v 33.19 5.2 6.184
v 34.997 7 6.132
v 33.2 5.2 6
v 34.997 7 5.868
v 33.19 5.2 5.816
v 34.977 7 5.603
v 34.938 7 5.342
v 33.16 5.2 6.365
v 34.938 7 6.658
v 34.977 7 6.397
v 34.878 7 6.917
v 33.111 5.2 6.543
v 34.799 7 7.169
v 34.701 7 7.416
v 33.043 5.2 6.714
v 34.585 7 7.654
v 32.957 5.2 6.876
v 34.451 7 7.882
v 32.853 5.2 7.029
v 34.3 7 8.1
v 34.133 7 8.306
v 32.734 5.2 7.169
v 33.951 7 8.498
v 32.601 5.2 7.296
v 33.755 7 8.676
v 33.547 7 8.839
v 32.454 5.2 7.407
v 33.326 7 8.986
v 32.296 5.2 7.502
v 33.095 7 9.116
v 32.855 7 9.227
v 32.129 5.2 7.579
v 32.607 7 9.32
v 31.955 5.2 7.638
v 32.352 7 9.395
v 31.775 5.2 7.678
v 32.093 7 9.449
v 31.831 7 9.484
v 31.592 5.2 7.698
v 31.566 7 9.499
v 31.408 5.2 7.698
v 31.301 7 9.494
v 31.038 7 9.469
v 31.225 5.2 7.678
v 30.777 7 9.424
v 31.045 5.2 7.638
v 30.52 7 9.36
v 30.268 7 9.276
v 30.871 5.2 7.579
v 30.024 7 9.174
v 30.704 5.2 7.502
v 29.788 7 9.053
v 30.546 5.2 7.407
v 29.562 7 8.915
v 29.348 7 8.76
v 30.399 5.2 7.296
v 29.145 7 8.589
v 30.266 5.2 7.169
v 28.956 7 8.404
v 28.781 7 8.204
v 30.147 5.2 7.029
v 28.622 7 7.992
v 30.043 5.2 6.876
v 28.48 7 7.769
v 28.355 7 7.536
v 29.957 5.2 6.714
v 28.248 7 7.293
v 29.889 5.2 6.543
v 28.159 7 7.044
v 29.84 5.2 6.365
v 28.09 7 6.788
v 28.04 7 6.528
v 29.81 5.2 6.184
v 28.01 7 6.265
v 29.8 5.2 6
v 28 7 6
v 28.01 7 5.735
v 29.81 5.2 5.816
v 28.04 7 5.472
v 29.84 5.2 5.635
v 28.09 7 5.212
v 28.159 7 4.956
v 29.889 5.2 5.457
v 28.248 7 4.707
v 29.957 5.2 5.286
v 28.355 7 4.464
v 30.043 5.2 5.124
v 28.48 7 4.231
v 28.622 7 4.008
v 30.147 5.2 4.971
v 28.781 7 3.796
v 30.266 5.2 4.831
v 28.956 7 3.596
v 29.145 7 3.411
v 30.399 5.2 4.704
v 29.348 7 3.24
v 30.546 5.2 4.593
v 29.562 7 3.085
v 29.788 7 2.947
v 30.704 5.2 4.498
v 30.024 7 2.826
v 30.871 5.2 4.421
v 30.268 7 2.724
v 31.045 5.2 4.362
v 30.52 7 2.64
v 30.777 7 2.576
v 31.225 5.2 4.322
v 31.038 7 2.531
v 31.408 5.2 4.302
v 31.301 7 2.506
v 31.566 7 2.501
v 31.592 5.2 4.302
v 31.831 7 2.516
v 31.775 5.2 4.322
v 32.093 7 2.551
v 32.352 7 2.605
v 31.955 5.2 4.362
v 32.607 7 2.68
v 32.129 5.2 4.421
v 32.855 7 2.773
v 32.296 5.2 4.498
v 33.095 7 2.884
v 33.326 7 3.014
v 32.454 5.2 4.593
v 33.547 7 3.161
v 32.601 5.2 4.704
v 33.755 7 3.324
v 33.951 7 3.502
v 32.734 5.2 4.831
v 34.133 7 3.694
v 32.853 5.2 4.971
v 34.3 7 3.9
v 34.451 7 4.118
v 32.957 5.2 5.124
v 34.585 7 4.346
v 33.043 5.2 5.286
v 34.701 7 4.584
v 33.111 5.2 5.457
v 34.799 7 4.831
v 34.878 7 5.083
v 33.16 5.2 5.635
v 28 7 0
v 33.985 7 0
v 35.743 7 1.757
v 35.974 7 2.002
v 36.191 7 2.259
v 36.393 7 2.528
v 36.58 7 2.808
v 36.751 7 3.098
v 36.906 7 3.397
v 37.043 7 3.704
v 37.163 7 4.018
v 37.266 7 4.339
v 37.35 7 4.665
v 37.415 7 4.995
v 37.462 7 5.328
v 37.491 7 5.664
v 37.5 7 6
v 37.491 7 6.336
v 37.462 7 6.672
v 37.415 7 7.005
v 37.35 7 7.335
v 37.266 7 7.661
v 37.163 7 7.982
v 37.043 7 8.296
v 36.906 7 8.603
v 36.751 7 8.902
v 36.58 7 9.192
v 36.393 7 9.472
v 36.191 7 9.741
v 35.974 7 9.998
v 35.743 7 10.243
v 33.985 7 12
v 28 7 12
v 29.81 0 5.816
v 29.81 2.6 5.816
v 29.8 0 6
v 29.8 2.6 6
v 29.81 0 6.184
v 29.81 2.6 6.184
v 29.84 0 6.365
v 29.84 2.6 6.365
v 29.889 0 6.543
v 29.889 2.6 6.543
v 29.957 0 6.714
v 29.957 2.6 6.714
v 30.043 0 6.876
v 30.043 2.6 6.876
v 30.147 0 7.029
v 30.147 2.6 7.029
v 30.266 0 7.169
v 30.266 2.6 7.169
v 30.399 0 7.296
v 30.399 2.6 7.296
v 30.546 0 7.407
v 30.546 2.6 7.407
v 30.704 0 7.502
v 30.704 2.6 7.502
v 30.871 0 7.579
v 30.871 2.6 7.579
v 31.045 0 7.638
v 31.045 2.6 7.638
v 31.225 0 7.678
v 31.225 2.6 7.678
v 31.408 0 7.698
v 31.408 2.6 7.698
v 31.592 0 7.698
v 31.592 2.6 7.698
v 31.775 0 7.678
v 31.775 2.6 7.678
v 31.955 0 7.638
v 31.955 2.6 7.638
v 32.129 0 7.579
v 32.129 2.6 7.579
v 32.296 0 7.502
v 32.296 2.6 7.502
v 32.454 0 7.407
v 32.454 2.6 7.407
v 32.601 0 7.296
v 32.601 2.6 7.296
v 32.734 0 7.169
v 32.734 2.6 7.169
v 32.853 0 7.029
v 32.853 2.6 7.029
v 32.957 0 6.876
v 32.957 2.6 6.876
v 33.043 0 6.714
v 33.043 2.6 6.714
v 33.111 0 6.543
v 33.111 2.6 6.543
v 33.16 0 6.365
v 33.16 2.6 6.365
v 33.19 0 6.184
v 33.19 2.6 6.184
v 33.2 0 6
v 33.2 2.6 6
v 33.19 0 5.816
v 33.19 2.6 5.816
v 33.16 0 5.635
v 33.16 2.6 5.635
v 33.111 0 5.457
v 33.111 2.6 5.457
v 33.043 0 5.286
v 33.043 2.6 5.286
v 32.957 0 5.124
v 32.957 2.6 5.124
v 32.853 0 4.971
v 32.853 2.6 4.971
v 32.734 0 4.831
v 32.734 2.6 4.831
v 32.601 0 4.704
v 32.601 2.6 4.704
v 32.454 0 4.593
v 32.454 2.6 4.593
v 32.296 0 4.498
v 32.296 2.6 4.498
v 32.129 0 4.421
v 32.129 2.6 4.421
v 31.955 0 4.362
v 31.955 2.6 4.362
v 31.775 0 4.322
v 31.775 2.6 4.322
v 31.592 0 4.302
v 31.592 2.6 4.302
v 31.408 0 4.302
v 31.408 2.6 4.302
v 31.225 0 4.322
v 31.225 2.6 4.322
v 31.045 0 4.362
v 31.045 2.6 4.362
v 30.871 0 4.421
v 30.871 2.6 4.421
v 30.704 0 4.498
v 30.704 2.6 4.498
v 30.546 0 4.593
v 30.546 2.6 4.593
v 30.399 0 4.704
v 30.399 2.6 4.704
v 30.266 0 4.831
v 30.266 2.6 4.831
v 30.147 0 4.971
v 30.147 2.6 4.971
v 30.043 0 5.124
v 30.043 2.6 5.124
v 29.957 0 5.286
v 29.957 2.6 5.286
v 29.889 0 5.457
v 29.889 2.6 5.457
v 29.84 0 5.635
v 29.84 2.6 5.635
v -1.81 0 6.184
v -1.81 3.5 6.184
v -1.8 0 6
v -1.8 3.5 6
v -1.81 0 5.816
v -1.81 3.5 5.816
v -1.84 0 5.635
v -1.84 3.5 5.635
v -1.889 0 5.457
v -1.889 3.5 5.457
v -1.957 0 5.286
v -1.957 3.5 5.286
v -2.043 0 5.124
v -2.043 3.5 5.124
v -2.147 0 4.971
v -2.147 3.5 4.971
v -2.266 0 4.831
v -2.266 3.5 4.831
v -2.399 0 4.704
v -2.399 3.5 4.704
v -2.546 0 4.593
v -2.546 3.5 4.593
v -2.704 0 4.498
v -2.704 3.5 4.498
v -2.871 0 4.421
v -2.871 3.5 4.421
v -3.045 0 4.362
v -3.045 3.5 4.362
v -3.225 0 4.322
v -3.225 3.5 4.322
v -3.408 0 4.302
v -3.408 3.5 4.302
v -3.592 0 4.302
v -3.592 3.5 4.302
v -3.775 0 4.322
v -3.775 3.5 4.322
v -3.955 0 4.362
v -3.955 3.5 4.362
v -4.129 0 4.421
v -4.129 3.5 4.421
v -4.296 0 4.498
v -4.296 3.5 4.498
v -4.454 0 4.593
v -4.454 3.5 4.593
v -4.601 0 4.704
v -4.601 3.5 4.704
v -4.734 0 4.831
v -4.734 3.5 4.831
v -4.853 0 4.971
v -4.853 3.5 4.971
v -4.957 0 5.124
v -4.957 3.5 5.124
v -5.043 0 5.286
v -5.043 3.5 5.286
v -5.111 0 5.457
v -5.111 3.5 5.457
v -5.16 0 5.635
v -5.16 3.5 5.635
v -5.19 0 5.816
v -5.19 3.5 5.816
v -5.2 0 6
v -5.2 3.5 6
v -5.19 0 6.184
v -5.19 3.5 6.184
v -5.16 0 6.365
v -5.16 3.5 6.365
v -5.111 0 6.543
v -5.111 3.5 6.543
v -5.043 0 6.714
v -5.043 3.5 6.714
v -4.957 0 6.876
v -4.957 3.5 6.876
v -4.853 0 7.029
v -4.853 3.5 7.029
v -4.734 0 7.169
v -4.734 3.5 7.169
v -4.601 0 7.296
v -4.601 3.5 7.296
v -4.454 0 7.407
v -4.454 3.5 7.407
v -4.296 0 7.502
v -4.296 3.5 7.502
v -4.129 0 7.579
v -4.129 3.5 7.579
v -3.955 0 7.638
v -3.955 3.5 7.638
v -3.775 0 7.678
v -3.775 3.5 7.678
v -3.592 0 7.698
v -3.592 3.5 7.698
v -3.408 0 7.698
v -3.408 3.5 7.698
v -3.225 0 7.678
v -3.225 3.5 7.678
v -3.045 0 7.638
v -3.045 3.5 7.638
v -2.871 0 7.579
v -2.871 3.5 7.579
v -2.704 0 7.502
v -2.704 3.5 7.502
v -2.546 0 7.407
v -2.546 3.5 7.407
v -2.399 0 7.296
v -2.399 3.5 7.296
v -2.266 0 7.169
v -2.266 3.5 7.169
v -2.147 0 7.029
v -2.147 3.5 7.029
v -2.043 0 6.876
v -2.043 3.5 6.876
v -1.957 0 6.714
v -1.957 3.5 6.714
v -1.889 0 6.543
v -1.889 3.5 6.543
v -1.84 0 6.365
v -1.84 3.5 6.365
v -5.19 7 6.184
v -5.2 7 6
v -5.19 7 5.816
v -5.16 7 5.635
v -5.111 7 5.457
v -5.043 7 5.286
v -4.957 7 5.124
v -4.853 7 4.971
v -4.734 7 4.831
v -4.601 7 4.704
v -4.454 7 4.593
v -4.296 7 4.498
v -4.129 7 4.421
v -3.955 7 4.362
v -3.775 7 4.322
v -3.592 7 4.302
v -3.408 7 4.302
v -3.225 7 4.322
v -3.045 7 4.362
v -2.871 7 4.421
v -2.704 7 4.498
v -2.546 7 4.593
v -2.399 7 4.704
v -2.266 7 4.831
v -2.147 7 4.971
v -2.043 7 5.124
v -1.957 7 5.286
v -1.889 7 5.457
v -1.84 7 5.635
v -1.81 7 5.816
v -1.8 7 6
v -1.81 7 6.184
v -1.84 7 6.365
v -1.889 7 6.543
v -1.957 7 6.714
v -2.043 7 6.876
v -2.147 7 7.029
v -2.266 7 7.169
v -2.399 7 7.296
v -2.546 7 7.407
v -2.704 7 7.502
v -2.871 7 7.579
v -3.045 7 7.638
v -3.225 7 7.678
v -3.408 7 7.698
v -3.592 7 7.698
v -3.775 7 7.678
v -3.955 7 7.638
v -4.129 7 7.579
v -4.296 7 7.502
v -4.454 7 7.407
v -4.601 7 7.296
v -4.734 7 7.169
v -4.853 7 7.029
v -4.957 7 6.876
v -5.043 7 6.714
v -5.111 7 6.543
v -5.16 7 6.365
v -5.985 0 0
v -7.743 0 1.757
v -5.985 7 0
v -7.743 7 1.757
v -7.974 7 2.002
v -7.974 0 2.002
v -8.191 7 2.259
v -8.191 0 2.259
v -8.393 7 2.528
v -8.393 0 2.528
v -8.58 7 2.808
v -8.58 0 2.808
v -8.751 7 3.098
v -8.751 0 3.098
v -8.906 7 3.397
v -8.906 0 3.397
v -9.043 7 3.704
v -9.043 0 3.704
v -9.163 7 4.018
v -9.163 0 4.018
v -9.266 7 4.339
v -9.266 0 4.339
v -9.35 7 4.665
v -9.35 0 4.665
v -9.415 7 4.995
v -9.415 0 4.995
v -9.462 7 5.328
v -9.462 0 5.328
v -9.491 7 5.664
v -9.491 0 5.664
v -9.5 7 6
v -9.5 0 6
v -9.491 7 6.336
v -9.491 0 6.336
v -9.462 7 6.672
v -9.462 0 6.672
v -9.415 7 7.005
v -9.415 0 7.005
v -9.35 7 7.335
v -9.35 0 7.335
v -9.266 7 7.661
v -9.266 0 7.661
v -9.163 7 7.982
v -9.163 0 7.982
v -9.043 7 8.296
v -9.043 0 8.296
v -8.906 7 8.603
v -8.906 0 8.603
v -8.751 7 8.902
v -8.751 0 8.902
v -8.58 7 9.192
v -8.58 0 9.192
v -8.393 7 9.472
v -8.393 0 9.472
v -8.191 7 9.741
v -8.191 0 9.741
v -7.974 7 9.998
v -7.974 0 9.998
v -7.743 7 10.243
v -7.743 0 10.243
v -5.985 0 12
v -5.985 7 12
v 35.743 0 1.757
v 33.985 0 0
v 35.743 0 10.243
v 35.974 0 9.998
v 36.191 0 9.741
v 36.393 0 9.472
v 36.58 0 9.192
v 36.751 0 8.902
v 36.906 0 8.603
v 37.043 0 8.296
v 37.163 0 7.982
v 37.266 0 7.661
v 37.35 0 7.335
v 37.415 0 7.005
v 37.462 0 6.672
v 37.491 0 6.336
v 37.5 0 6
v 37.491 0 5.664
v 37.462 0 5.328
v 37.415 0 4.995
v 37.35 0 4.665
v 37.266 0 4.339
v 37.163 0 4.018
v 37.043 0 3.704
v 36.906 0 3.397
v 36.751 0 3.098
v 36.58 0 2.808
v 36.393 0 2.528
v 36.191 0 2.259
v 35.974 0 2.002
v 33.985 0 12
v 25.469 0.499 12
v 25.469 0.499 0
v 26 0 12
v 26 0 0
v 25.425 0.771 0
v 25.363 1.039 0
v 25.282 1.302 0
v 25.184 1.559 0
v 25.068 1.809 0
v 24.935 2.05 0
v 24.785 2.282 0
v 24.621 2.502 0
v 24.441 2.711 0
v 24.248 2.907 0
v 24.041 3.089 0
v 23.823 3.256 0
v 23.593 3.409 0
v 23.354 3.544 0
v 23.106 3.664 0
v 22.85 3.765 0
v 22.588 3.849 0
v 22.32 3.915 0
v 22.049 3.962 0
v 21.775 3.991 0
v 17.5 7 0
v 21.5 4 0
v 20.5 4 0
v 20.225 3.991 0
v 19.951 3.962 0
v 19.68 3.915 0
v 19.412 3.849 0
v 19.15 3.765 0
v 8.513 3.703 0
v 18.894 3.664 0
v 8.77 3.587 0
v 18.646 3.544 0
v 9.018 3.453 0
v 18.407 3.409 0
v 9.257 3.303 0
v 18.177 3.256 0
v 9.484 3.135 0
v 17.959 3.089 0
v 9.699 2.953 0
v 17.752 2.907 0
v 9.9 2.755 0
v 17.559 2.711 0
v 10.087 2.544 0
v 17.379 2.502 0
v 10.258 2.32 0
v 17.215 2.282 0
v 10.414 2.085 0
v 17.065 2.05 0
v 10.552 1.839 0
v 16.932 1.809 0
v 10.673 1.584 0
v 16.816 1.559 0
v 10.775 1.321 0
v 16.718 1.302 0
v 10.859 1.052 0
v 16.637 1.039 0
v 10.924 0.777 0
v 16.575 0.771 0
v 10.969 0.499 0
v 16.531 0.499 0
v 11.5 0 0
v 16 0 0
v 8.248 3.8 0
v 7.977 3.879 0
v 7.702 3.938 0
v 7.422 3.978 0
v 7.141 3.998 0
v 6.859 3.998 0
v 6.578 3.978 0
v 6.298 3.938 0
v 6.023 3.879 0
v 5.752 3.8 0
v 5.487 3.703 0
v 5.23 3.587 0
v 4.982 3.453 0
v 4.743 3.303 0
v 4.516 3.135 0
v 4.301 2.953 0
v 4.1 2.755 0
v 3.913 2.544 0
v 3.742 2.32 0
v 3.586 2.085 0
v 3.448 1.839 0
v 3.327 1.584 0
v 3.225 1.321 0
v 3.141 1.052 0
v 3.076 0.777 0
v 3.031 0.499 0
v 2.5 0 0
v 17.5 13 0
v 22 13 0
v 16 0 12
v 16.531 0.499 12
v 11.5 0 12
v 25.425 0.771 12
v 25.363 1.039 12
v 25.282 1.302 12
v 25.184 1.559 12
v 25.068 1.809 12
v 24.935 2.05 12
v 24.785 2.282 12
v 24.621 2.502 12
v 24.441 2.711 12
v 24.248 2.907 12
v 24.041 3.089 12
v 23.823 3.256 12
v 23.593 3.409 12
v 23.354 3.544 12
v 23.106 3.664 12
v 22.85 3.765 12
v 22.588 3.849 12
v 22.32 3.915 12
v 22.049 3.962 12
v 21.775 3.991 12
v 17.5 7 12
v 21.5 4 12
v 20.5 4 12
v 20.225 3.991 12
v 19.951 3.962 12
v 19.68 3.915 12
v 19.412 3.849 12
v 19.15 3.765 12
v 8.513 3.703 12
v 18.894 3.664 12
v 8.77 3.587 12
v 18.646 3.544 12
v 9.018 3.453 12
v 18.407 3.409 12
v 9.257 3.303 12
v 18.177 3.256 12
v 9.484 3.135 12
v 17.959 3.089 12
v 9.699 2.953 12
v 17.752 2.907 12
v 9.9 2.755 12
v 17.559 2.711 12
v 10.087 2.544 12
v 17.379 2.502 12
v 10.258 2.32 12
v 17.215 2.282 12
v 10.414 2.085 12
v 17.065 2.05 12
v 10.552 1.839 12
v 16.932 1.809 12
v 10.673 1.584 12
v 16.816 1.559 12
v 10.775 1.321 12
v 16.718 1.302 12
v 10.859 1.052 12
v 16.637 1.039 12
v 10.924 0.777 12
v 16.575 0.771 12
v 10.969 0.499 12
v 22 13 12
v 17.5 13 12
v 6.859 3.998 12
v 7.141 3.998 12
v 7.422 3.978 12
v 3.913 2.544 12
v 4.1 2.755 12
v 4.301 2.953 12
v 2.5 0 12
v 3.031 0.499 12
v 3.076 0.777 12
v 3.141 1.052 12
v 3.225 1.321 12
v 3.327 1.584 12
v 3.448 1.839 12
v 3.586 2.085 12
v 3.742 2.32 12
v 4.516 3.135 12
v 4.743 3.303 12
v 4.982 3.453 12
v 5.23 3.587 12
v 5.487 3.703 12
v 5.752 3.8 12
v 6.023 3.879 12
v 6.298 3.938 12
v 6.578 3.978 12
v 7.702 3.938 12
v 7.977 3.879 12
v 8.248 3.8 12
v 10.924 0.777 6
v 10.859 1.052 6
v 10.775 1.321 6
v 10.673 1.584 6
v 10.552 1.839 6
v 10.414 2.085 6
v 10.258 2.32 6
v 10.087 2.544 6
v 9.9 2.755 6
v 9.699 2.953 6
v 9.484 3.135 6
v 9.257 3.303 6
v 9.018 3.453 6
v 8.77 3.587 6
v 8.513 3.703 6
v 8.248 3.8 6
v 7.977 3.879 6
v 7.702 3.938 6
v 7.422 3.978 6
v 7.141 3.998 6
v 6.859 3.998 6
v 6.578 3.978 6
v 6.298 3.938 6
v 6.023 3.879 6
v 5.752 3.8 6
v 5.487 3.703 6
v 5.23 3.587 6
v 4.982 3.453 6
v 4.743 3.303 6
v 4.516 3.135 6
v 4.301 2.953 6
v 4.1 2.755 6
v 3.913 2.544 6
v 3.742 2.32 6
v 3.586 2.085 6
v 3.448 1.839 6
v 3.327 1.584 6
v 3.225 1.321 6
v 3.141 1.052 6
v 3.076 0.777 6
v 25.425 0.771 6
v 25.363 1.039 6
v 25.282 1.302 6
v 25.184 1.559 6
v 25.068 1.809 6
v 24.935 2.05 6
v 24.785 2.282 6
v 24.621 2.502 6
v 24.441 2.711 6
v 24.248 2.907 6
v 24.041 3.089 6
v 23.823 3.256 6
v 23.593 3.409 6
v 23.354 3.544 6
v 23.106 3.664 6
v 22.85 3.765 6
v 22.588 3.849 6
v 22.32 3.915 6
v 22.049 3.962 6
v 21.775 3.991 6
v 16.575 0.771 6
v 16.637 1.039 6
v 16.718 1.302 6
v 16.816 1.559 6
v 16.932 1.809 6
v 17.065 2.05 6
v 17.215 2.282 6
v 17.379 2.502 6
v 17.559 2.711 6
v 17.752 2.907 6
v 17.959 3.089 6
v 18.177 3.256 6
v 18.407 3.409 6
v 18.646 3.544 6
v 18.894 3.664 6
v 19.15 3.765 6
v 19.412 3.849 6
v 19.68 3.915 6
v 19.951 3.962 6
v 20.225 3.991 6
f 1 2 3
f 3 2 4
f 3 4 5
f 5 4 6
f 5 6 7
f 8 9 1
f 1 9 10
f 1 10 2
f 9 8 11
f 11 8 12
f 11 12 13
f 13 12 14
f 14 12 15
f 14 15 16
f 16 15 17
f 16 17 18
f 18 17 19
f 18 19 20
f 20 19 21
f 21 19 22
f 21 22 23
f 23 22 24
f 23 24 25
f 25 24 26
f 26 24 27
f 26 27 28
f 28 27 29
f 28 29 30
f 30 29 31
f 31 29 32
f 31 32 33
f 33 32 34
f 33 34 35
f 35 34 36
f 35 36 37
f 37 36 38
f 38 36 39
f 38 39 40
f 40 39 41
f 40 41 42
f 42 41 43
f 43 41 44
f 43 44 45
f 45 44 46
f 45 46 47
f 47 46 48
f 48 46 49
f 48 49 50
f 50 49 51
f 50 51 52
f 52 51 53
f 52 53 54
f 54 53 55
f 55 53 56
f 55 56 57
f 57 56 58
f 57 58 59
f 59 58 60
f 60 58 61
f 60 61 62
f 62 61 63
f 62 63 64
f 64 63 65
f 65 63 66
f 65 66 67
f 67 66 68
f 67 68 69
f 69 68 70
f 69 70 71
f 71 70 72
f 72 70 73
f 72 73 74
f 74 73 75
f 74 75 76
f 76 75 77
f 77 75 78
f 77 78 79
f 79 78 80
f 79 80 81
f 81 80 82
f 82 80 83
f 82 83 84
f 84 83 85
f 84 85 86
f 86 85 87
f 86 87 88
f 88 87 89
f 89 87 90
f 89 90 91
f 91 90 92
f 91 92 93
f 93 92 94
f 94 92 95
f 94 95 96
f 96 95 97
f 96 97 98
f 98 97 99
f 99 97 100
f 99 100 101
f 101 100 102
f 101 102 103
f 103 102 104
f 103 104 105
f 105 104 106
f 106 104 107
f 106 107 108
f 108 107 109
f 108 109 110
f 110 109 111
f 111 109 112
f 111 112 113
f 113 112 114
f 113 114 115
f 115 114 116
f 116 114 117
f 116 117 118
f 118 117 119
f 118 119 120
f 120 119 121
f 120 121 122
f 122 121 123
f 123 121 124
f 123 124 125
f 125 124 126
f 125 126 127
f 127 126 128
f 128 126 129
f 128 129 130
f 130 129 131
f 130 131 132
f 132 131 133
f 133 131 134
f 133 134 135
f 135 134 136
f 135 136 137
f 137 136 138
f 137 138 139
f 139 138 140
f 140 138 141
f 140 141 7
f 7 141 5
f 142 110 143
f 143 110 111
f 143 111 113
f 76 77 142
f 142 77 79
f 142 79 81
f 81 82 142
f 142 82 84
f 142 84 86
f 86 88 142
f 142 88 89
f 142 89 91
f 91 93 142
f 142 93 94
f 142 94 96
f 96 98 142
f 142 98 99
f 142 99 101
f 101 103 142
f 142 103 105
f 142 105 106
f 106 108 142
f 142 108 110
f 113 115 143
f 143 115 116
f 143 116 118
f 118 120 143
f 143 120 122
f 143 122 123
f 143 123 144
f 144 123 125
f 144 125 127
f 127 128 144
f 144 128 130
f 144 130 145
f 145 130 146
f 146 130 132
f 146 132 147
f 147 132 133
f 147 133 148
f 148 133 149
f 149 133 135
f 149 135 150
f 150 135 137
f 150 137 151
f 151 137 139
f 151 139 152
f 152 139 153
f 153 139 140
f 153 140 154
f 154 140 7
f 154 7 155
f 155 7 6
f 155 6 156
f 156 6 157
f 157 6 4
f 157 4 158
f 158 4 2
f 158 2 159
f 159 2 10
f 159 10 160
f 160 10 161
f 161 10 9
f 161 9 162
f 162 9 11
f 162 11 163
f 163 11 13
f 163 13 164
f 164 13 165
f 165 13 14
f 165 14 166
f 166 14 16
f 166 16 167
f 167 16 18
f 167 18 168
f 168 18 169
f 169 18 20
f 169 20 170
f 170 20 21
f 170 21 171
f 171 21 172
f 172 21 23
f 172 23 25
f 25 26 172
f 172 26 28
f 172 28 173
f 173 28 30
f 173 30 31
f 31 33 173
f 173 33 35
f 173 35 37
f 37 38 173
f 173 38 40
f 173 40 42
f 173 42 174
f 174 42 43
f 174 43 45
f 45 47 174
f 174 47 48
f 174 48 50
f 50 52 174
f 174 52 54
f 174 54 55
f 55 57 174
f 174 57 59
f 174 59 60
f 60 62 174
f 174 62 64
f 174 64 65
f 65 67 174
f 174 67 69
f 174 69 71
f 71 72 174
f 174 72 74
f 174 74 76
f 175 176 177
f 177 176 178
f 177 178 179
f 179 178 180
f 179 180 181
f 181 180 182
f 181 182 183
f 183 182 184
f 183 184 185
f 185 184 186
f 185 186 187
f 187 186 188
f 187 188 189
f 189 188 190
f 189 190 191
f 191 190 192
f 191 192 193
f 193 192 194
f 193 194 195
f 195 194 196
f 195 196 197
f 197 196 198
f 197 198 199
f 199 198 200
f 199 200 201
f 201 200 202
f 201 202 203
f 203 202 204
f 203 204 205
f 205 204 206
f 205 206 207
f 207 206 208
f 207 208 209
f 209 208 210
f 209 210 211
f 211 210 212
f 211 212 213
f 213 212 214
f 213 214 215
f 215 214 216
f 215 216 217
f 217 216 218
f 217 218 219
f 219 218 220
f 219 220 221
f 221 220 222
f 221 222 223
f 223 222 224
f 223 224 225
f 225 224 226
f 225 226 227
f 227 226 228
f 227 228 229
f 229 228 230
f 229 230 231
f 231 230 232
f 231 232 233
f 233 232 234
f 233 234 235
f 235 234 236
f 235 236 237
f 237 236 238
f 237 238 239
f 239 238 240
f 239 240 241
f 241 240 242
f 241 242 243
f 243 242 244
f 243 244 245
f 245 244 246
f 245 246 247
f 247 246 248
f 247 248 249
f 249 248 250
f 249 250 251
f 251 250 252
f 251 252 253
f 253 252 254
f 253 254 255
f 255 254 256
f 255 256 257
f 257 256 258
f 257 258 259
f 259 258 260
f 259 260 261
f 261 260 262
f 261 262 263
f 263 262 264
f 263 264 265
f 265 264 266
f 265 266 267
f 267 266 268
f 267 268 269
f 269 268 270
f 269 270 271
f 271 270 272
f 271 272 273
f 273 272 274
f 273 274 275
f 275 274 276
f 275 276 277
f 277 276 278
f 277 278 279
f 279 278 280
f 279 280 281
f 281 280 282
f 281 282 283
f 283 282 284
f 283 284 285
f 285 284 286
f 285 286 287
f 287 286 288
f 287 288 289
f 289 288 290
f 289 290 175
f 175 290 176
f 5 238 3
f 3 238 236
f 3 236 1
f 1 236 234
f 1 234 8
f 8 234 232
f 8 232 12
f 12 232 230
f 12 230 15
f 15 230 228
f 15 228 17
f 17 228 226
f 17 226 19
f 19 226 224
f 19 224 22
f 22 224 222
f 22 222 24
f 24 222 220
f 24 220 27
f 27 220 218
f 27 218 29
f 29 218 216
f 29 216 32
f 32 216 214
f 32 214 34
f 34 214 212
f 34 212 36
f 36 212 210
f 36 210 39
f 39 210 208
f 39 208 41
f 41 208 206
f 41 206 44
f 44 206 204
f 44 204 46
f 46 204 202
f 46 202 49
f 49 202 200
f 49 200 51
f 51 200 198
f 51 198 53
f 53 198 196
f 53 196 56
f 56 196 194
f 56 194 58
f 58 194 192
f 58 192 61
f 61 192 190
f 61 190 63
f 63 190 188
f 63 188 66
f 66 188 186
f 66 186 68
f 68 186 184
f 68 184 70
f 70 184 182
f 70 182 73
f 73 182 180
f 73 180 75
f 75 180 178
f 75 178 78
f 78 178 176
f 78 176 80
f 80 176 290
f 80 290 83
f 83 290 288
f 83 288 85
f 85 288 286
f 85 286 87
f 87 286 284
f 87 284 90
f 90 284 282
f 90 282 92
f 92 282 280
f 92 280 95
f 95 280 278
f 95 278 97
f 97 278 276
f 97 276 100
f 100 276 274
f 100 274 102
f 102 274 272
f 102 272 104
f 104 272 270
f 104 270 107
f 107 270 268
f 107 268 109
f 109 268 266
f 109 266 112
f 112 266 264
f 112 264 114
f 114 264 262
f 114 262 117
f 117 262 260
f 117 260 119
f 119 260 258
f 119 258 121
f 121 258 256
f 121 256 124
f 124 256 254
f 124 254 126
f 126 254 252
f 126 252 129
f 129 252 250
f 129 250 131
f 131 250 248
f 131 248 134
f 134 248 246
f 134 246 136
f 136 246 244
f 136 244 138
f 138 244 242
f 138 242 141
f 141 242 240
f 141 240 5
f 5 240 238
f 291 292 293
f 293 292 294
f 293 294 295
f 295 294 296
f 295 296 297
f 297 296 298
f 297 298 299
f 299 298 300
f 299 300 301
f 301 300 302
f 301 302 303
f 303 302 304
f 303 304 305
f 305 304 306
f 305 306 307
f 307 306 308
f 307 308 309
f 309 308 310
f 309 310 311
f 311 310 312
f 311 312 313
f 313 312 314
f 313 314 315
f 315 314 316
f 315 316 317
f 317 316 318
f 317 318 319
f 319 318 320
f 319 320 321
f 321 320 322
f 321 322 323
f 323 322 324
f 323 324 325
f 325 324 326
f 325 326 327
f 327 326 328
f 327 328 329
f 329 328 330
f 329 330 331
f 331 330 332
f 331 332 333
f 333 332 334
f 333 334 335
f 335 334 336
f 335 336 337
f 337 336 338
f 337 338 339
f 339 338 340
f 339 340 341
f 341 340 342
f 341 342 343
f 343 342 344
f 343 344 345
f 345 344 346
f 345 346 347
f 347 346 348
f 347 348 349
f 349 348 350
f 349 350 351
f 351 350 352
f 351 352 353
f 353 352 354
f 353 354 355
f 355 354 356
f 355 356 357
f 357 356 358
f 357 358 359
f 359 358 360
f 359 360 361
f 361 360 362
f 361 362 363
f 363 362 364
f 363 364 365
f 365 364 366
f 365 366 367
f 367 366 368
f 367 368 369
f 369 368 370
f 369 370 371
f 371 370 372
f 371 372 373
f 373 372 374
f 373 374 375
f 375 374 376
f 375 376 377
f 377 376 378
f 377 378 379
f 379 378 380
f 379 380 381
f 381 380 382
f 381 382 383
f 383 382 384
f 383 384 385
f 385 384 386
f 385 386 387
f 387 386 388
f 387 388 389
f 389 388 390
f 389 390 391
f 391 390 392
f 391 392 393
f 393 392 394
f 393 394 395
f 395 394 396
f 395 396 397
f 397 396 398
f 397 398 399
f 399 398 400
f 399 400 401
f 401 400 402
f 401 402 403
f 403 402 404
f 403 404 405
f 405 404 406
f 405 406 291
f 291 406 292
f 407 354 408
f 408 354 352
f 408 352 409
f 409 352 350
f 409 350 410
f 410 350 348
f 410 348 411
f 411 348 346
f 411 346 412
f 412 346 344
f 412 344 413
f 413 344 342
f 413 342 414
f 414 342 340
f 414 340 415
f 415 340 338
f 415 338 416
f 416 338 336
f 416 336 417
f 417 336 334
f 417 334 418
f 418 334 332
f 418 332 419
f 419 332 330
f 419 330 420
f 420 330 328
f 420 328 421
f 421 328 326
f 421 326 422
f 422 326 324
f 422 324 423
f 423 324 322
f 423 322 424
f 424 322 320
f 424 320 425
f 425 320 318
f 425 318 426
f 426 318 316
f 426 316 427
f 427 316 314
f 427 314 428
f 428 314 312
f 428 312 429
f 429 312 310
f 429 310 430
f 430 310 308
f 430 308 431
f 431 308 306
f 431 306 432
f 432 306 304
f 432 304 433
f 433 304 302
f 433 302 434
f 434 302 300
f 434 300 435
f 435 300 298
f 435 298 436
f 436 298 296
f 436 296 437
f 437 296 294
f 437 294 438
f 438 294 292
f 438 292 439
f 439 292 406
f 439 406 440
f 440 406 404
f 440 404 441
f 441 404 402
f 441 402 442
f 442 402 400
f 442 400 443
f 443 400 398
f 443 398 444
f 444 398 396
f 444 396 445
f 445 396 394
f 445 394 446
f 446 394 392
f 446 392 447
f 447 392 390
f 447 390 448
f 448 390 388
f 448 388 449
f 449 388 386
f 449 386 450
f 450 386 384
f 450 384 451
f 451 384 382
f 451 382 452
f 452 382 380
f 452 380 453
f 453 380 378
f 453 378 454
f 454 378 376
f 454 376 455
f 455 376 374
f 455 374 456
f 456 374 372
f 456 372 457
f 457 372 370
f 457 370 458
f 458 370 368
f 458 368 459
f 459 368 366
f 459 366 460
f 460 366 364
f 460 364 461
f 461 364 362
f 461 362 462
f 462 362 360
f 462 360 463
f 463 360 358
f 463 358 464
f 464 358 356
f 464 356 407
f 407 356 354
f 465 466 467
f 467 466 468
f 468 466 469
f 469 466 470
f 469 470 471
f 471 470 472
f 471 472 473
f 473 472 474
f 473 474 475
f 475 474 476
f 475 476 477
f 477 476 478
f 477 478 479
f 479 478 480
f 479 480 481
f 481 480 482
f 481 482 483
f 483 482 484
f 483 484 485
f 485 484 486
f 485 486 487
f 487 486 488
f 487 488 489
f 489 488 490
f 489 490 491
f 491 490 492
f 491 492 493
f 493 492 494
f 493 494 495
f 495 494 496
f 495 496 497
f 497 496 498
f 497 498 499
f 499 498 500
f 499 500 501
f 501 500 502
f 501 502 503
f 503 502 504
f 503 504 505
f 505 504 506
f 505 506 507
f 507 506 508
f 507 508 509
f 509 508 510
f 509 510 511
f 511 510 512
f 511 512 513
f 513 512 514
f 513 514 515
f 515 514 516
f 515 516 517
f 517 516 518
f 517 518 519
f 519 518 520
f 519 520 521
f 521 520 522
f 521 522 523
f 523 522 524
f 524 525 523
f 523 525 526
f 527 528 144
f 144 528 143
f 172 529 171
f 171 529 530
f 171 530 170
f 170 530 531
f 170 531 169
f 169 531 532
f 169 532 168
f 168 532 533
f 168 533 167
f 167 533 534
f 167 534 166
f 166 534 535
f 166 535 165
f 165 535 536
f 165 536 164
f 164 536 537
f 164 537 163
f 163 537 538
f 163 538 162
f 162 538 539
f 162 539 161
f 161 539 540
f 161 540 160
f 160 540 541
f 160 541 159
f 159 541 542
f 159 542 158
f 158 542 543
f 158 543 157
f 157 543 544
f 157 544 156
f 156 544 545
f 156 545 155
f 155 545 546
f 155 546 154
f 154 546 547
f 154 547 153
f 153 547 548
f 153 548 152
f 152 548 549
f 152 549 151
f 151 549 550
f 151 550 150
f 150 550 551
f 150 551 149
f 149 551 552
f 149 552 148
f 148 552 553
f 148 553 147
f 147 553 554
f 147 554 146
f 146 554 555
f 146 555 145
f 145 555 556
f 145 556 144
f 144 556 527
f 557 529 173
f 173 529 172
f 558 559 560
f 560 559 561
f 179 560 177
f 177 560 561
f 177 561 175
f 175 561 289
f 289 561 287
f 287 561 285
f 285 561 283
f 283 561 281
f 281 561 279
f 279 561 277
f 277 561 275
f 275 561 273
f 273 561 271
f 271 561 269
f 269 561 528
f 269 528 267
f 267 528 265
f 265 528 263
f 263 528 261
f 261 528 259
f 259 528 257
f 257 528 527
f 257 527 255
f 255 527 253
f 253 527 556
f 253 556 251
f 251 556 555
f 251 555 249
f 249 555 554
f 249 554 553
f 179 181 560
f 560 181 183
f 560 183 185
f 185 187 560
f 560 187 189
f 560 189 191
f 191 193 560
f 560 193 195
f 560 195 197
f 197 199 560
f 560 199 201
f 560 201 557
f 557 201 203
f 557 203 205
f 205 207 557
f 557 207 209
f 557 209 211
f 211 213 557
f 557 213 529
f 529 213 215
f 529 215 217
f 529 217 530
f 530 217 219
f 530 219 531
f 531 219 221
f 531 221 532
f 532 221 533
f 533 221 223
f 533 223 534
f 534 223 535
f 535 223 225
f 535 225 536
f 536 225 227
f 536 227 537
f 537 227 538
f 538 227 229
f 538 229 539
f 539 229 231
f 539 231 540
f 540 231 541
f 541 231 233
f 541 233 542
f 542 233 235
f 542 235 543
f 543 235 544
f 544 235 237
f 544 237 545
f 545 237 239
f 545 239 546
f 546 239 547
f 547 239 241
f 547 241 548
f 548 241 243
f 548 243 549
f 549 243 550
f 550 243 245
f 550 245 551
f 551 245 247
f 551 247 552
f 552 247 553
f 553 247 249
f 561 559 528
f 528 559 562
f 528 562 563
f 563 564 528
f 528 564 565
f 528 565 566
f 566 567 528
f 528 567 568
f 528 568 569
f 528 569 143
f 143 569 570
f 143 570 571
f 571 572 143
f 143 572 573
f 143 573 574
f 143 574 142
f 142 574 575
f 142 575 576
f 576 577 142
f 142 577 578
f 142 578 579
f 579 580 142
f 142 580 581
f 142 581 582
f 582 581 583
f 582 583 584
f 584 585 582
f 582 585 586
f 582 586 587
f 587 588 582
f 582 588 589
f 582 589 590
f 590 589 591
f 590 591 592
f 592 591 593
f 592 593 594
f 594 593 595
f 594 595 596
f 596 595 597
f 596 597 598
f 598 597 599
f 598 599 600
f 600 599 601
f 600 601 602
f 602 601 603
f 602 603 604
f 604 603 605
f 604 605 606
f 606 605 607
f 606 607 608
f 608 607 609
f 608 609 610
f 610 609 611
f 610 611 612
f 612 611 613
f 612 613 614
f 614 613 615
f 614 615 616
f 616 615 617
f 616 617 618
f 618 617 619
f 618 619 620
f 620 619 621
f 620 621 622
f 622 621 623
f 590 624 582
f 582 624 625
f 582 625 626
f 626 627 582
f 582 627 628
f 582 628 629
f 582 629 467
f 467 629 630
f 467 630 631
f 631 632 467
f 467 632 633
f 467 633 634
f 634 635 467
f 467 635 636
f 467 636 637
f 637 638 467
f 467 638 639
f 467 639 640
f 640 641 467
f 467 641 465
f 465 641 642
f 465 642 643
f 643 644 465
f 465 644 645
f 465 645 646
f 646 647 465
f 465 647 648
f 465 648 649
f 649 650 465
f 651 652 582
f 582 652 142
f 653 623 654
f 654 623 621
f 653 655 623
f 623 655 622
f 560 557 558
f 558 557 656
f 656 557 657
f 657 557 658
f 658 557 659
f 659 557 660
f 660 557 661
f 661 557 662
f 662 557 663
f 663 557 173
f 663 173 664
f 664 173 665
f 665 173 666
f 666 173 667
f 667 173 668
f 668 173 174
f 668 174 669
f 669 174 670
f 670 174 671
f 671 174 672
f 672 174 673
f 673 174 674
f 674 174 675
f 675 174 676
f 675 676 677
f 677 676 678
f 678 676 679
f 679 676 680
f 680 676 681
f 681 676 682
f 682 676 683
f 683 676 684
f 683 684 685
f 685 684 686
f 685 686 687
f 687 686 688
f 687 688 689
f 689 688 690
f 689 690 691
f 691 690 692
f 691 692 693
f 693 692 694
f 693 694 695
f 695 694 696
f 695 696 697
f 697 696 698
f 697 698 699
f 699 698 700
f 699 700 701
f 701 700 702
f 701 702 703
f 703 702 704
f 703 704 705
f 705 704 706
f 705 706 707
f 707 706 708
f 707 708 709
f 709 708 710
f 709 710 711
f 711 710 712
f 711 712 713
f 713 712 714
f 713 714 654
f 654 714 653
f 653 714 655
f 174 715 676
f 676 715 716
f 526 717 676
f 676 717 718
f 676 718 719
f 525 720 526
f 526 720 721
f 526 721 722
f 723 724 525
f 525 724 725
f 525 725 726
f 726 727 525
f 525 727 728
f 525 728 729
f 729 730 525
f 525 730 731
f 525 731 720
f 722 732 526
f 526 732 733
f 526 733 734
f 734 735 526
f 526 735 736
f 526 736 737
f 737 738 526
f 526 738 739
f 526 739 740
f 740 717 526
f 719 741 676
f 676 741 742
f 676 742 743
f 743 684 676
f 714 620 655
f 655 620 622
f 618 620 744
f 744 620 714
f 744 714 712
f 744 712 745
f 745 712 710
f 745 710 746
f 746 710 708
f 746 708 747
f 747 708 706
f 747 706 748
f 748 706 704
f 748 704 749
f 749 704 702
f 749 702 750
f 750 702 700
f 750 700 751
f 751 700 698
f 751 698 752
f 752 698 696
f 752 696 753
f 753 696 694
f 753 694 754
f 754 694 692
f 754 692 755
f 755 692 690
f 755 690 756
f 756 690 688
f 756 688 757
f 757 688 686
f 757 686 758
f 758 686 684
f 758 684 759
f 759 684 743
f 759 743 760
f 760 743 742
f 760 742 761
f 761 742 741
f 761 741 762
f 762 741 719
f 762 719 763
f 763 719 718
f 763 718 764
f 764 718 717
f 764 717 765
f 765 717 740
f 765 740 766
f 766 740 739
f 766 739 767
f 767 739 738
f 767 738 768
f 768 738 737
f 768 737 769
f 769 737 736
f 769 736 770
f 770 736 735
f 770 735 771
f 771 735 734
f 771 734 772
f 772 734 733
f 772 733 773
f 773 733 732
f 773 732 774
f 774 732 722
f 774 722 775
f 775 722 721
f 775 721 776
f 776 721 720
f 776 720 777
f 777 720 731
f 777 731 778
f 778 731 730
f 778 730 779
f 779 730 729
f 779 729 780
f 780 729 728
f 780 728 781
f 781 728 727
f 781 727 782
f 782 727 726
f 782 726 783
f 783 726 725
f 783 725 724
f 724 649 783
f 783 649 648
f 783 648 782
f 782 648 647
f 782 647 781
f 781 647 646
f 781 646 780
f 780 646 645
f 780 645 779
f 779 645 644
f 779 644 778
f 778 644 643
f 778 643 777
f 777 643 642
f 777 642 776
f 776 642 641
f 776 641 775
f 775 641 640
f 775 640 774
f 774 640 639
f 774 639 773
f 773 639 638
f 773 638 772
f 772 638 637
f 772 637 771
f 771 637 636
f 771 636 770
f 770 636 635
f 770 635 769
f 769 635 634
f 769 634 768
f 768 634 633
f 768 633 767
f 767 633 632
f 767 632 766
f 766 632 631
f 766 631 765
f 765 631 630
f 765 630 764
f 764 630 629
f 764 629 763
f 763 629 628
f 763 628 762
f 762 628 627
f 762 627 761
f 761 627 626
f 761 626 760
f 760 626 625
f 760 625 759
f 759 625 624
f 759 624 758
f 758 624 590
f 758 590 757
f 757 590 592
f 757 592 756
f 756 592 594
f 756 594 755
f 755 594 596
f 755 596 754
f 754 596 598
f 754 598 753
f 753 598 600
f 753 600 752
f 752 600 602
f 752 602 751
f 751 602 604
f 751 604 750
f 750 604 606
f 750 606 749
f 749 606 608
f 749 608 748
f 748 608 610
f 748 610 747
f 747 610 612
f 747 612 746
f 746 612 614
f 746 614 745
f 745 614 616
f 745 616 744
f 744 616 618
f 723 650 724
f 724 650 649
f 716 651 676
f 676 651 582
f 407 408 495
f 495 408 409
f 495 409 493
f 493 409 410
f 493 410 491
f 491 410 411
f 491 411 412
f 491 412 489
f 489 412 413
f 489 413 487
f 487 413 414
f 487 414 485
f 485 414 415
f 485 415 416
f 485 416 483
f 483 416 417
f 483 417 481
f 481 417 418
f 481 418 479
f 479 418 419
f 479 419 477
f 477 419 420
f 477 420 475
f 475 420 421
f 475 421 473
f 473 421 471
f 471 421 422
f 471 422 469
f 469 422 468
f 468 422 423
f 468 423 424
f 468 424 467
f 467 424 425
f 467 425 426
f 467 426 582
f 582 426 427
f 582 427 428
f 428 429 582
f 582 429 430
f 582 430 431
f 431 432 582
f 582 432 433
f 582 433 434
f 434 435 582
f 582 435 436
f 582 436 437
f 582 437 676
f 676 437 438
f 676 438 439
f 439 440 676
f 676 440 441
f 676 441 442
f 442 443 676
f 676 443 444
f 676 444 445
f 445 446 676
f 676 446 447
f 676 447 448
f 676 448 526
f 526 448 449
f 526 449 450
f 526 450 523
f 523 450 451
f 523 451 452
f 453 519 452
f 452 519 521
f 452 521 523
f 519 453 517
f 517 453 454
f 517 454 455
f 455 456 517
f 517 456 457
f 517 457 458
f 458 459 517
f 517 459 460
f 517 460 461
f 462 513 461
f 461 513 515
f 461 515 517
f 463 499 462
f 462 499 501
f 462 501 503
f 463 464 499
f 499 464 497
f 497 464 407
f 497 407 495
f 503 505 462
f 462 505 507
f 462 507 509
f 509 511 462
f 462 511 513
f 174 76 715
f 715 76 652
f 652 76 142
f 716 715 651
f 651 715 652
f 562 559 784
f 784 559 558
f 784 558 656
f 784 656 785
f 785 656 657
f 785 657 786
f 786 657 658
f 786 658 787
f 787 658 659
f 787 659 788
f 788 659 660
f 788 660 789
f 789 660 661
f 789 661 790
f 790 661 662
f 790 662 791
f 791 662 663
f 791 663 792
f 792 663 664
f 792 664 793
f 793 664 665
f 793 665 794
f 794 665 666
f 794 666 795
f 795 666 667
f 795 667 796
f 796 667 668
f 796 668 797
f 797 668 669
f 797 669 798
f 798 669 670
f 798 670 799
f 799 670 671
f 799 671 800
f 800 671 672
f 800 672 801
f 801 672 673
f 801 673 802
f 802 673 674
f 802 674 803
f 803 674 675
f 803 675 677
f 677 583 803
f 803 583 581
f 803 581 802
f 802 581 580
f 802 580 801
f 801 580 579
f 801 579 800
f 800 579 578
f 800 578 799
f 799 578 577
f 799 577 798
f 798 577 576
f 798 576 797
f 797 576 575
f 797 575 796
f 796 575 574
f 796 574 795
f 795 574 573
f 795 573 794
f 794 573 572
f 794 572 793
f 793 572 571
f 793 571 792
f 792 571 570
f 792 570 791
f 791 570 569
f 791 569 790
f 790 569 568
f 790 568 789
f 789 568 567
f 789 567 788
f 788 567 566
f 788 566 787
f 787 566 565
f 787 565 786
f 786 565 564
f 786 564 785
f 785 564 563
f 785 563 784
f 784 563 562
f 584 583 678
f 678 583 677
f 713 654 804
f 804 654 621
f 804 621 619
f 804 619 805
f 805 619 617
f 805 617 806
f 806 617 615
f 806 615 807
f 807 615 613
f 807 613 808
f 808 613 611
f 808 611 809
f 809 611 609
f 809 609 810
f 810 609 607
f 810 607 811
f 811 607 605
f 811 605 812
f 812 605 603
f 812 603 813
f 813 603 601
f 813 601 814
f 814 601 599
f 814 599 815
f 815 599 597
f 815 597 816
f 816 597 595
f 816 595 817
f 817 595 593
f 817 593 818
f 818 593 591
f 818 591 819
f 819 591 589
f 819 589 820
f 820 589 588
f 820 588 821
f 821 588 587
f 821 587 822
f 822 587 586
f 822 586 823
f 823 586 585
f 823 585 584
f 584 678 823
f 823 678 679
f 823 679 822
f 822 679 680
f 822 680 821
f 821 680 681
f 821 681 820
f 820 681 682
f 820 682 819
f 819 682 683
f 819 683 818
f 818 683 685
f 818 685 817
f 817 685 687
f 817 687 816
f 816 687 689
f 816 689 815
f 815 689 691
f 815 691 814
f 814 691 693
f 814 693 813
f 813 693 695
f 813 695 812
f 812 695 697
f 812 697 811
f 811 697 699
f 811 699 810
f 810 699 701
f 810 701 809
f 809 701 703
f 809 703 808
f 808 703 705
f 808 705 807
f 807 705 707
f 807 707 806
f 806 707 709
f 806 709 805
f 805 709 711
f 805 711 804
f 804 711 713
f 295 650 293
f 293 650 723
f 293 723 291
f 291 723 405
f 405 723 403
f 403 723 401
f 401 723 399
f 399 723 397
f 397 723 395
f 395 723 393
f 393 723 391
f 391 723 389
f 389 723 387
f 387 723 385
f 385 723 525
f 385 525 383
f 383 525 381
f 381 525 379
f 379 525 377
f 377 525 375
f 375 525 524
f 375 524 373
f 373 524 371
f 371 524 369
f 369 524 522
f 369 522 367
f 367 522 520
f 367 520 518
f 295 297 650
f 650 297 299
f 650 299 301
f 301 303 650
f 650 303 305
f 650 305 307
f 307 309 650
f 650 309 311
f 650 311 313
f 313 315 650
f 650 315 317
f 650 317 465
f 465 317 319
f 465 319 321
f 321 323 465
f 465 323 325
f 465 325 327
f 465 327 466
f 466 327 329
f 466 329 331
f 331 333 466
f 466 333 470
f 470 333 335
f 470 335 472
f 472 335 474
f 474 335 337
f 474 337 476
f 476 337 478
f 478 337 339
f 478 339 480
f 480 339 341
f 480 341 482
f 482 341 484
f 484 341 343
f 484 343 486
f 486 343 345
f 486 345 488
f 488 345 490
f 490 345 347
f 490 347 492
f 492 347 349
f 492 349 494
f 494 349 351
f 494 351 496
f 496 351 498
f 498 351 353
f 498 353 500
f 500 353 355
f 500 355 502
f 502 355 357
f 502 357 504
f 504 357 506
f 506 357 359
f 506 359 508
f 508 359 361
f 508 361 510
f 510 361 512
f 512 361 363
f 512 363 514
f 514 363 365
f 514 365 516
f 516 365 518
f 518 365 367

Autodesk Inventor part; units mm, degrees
ref_plane "YZ Plane" through (0, 0, 0) normal (1, 0, 0) x (0, 1, 0)
sketch "Sketch1" plane through (0, 0, 0) normal (0, 0, 1) x (1, 0, 0)
  line L0 (0, 0) -> (28, 0)
  line L1 (28, 0) -> (28, 13)
  line L2 (28, 13) -> (0, 13)
  line L3 (0, 13) -> (0, 0)
  circle A0 centre (7, 0) radius 4
  circle A1 centre (21, 0) radius 4 construction
  line L4 (21, 0) -> (23, 0) construction
  line L5 (20.5, 0) -> (21.5, 0) construction
  line L6 (20.5, 4) -> (21.5, 4)
  line L7 (21.5, -4) -> (20.5, -4)
  arc A2 (20.5, 4) -> (20.5, -4) centre (20.5, 0) ccw
  arc A3 (21.5, -4) -> (21.5, 4) centre (21.5, 0) ccw
  point P0 (3, 0)
  point P1 (11, 0)
  point P2 (17, 0)
  point P3 (25, 0)
  point P4 (22, 0)
  point P5 (21, 0)
  point P6 (16.5, 0)
  point P7 (25.5, 0)
  dimension "d0" = 28
  dimension "d1" = 13
  dimension "d2" = 8
  dimension "d3" = 8
  dimension "d4" = 14
  dimension "d5" = 7
  dimension "d6" = 7
  dimension "d39" = 1
  dimension "d40" = 1
extrude "Extrusion1" add sketch "Sketch1" along normal blind 12 contours L3 L2 L1 L0 A3 L6 A2 A0
chamfer "Chamfer1" distance 6 angle 45 1 edges at (28, 13, 6)
sketch "Sketch2" plane through (0, 13, 12) normal (0, 1, 0) x (1, 0, 0)
  line L0 (0, 12) -> (0, 0) projected
  line L1 (0, 7.25) -> (11.5, 7.25)
  line L2 (11.5, 7.25) -> (11.5, 12)
  line L3 (22, 12) -> (0, 12) projected
  line L4 (17.5, 12) -> (17.5, 0)
  line L5 (11, 0) -> (3, 0) projected
  line L6 (0, 4.75) -> (11.5, 4.75)
  line L7 (11.5, 4.75) -> (11.5, 0)
  line L8 (11, 0) -> (3, 0) projected
  line L9 (11.5, 12) -> (17.5, 12)
  line L10 (17.5, 0) -> (11.5, 0)
  line L11 (0, 4.75) -> (0, 7.25)
  line L12 (11.5, 7.25) -> (11.5, 4.75)
  line L13 (0, 4.75) -> (11.5, 4.75)
  line L14 (11.5, 4.75) -> (11.5, 0)
  line L15 (11.5, 0) -> (0, 0)
  line L16 (0, 0) -> (0, 4.75)
  line L17 (11, 0) -> (16.5, 0) projected
  line L18 (11.5, 12) -> (14, 12)
  line L19 (14, 12) -> (14, 0)
  line L20 (14, 0) -> (11.5, 0)
  line L21 (11.5, 0) -> (11.5, 12)
  line L22 (0, 7.25) -> (0.5, 8)
  line L23 (0.5, 8) -> (1, 7.25)
  line L24 (2, 7.25) -> (2.5, 8)
  line L25 (2.5, 8) -> (3, 7.25)
  line L26 (4, 7.25) -> (4.5, 8)
  line L27 (4.5, 8) -> (5, 7.25)
  line L28 (6, 7.25) -> (6.5, 8)
  line L29 (6.5, 8) -> (7, 7.25)
  line L30 (8, 7.25) -> (8.5, 8)
  line L31 (8.5, 8) -> (9, 7.25)
  line L32 (0, 12) -> (0, 0) projected
  line L33 (0, 6) -> (11.5, 6) construction
  line L34 (0, 4.75) -> (0.5, 4)
  line L35 (0.5, 4) -> (1, 4.75)
  line L36 (2, 4.75) -> (2.5, 4)
  line L37 (2.5, 4) -> (3, 4.75)
  line L38 (4, 4.75) -> (4.5, 4)
  line L39 (4.5, 4) -> (5, 4.75)
  line L40 (6, 4.75) -> (6.5, 4)
  line L41 (6.5, 4) -> (7, 4.75)
  line L42 (8, 4.75) -> (8.5, 4)
  line L43 (8.5, 4) -> (9, 4.75)
  point P0 (17, 0)
  point P1 (3, 0)
  dimension "d12" = 6
  dimension "d13" = 2.5
  dimension "d14" = 11.5
  dimension "d41" = 2.5
  dimension "d42" = 0.75
  dimension "d43" = 1
  dimension "d46" = 2
extrude "Extrusion2" cut sketch "Sketch2" against normal blind 6
fillet "Fillet1" [suppressed]
chamfer "Chamfer2" distance 0.5 angle 45 4 edges at (3, 0, 6) (11, 0, 6) (16.5, 0, 6) (25.5, 0, 6)
ref_plane "Work Plane1" through (0, 0, 6) normal (0, 0, 1) x (1, 0, 0)
ref_plane "Work Plane3" through (14, 0, 12) normal (1, 0, 0) x (0, 0, -1)
sketch "Sketch5" plane through (28, 0, 0) normal (0, -1, 0) x (1, 0, 0)
  circle A0 centre (3.5, 6) radius 1.5
  line L0 (-28, 0) -> (-25.5, 0) projected
  line L1 (0, 0) -> (0, 12) projected
  circle A1 centre (3.5, 6) radius 3.5
  line L2 (0, 0) -> (0, 12) projected
  line L3 (-6, 12) -> (0, 12) projected
  line L4 (0, 12) -> (5.9853, 12)
  line L5 (0, 0) -> (-6, 0) projected
  line L6 (0, 0) -> (5.9853, 0)
  line L7 (5.9853, 0) -> (7.7426, 1.7574)
  line L8 (5.9853, 12) -> (7.7426, 10.2426)
  circle A2 centre (3.5, 6) radius 6
  line L9 (-28, 12) -> (-25.5, 12) projected
  line L10 (-28, 0) -> (-28, 12) projected
  line L11 (-25.5, 12) -> (-25.5, 0) projected
  line L12 (-16.5, 0) -> (-16.5, 12) projected
  line L13 (-16.5, 0) -> (-12, 0) projected
  line L14 (-16.5, 12) -> (-12, 12) projected
  line L15 (-2, 0) -> (0, 0) projected
  line L16 (-2, 12) -> (0, 12) projected
  line L17 (-12, 12) -> (-12, 0) projected
  line L18 (-2, 0) -> (-2, 12) projected
  point P0 (-2.5, 12)
  point P1 (-2.5, 0)
  point P2 (0, 6)
  dimension "d26" = 3
  dimension "d28" = 7
  dimension "d38" = 135
extrude "Extrusion3" add sketch "Sketch5" against normal blind 7 contours A0 | L1 A2 L6 | A1 | L1 A2 | A2 L7 L6 | L1 L4 A2 | L4 L8 A2
sketch "Sketch6" plane through (28, 7, 0) normal (0, 1, 0) x (1, 0, 0)
  arc A0 (7.7426, -10.2426) -> (7.7426, -1.7574) centre (3.5, -6) ccw projected
  point P0 (-28, 0)
hole "Hole1" at (31.5, 7, 6) direction (0, -1, 0) diameter 3.4 depth 8 clearance for "Flat Head Machine Screw" size "M3" standard "Ansi Metric M Profile"
mirror "Mirror2" about plane through (14, 0, 12) normal (1, 0, 0) of "Extrusion3", "Hole1"
chamfer "Chamfer3" distance 1.8 angle 45 1 edges at (31.5, 7, 4.3)
equation "\"d5\" = d6"
properties part number "Magnet Mount Lower"
